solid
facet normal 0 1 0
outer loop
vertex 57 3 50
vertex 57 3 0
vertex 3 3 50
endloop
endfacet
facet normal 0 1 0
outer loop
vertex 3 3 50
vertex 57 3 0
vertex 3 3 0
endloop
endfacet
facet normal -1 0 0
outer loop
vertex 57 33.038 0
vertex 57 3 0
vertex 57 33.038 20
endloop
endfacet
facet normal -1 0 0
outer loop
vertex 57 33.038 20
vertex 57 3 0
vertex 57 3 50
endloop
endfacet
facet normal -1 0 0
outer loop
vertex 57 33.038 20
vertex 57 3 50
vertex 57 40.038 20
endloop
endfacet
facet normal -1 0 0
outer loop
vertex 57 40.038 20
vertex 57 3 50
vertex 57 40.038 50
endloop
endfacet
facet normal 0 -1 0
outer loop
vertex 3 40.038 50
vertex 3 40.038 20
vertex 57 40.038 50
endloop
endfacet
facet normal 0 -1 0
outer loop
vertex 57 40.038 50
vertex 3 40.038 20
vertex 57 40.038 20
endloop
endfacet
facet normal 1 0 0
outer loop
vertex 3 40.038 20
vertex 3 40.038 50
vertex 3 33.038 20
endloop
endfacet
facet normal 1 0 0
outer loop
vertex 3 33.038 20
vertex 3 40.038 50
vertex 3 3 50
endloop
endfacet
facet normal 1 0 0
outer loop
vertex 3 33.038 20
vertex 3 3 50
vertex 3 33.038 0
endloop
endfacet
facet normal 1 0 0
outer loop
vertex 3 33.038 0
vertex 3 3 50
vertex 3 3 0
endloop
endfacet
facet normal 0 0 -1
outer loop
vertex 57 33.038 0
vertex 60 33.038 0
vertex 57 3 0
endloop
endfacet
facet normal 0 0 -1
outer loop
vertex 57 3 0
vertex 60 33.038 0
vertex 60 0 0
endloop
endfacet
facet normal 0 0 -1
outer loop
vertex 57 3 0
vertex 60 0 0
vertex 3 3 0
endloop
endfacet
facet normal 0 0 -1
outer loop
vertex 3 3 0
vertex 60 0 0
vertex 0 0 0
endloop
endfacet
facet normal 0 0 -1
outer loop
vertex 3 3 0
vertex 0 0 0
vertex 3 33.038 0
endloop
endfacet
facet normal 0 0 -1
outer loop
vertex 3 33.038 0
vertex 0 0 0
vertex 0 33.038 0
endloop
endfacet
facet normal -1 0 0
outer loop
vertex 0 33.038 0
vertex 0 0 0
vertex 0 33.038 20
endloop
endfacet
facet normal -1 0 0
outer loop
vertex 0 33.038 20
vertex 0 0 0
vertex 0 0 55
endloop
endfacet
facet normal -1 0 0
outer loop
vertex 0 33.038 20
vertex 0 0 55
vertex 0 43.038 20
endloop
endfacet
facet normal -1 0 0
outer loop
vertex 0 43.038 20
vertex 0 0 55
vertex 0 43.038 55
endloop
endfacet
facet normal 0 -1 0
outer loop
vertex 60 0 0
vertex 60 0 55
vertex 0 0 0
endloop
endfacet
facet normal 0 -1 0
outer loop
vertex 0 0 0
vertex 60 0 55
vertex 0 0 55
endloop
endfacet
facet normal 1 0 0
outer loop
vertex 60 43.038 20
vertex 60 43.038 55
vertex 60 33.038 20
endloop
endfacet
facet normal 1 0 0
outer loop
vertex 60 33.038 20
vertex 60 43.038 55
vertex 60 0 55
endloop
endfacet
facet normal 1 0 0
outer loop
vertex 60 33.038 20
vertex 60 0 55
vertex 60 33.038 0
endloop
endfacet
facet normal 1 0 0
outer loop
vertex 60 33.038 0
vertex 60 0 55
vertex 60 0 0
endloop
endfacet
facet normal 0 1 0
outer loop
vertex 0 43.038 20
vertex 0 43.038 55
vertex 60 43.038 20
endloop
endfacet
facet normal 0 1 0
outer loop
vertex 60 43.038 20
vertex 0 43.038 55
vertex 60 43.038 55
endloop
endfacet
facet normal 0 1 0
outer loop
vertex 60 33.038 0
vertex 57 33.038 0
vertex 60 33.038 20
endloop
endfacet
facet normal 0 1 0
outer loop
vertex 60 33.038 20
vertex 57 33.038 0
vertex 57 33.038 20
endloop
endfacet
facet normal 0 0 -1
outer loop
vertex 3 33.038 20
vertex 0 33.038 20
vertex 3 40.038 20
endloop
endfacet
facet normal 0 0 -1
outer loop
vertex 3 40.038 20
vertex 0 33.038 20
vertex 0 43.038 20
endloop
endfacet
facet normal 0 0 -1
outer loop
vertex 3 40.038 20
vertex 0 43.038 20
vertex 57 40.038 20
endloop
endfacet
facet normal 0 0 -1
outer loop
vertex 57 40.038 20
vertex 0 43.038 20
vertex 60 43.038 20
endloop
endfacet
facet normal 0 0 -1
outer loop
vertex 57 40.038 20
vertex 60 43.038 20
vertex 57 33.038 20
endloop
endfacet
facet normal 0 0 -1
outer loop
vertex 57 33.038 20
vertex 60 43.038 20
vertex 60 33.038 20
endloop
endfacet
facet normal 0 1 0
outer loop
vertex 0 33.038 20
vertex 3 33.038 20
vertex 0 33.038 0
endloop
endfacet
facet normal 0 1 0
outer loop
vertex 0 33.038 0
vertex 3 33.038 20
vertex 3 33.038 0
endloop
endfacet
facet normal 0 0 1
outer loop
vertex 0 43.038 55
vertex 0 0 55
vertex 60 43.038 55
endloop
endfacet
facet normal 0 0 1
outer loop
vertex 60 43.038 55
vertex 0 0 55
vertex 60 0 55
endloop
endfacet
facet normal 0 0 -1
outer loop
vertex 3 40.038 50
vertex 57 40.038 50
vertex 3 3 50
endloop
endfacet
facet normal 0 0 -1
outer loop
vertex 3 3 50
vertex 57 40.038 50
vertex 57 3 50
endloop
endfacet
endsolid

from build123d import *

# Parameters (mm, degrees)
IZIM1_W                     = 60
IZIM1_H                     = 43.037715622
IZIM1_W_2                   = 54
IZIM1_H_2                   = 37.037715622
Y_KSEKLIK_EKSTR_ZYON1_DEPTH = 110
IZIM2_W                     = 60
IZIM2_H                     = 20
KES_EKSTR_ZYON1_DEPTH       = 10
IZIM3_W                     = 60
IZIM3_H                     = 43.037715622
Y_KSEKLIK_EKSTR_ZYON2_DEPTH = 10
IZIM4_W                     = 60
IZIM4_H                     = 55
KES_EKSTR_ZYON2_DEPTH       = 70
IZIM5_W                     = 60
IZIM5_H                     = 43.037715622
Y_KSEKLIK_EKSTR_ZYON3_DEPTH = 5


with BuildPart() as part:
    # Çizim1 → Yükseklik-Ekstrüzyon1 (new body)
    with BuildSketch(Plane.XY):
        with Locations((30, 21.518857811)):
            Rectangle(IZIM1_W, IZIM1_H)
        with Locations((30, 21.518857811)):
            Rectangle(IZIM1_W_2, IZIM1_H_2, mode=Mode.SUBTRACT)
    extrude(amount=Y_KSEKLIK_EKSTR_ZYON1_DEPTH)

    # Çizim2 → Kes-Ekstrüzyon1 (cut)
    with BuildSketch(Plane(origin=(0, 43.037715622, 0), x_dir=(1, 0, 0), z_dir=(0, 1, 0))):
        with Locations((30, -10)):
            Rectangle(IZIM2_W, IZIM2_H)
    extrude(amount=-KES_EKSTR_ZYON1_DEPTH, mode=Mode.SUBTRACT)

    # Çizim3 → Yükseklik-Ekstrüzyon2 (add)
    with BuildSketch(Plane.XY.offset(110)):
        with Locations((30, 21.518857811)):
            Rectangle(IZIM3_W, IZIM3_H)
    extrude(amount=-Y_KSEKLIK_EKSTR_ZYON2_DEPTH)

    # Çizim4 → Kes-Ekstrüzyon2 (cut)
    with BuildSketch(Plane(origin=(0, 43.037715622, 0), x_dir=(1, 0, 0), z_dir=(0, 1, 0))):
        with Locations((30, -82.5)):
            Rectangle(IZIM4_W, IZIM4_H)
    extrude(amount=-KES_EKSTR_ZYON2_DEPTH, mode=Mode.SUBTRACT)

    # Çizim5 → Yükseklik-Ekstrüzyon3 (add)
    with BuildSketch(Plane.XY.offset(55)):
        with Locations((30, 21.518857811)):
            Rectangle(IZIM5_W, IZIM5_H)
    extrude(amount=-Y_KSEKLIK_EKSTR_ZYON3_DEPTH)


solid = part.part
